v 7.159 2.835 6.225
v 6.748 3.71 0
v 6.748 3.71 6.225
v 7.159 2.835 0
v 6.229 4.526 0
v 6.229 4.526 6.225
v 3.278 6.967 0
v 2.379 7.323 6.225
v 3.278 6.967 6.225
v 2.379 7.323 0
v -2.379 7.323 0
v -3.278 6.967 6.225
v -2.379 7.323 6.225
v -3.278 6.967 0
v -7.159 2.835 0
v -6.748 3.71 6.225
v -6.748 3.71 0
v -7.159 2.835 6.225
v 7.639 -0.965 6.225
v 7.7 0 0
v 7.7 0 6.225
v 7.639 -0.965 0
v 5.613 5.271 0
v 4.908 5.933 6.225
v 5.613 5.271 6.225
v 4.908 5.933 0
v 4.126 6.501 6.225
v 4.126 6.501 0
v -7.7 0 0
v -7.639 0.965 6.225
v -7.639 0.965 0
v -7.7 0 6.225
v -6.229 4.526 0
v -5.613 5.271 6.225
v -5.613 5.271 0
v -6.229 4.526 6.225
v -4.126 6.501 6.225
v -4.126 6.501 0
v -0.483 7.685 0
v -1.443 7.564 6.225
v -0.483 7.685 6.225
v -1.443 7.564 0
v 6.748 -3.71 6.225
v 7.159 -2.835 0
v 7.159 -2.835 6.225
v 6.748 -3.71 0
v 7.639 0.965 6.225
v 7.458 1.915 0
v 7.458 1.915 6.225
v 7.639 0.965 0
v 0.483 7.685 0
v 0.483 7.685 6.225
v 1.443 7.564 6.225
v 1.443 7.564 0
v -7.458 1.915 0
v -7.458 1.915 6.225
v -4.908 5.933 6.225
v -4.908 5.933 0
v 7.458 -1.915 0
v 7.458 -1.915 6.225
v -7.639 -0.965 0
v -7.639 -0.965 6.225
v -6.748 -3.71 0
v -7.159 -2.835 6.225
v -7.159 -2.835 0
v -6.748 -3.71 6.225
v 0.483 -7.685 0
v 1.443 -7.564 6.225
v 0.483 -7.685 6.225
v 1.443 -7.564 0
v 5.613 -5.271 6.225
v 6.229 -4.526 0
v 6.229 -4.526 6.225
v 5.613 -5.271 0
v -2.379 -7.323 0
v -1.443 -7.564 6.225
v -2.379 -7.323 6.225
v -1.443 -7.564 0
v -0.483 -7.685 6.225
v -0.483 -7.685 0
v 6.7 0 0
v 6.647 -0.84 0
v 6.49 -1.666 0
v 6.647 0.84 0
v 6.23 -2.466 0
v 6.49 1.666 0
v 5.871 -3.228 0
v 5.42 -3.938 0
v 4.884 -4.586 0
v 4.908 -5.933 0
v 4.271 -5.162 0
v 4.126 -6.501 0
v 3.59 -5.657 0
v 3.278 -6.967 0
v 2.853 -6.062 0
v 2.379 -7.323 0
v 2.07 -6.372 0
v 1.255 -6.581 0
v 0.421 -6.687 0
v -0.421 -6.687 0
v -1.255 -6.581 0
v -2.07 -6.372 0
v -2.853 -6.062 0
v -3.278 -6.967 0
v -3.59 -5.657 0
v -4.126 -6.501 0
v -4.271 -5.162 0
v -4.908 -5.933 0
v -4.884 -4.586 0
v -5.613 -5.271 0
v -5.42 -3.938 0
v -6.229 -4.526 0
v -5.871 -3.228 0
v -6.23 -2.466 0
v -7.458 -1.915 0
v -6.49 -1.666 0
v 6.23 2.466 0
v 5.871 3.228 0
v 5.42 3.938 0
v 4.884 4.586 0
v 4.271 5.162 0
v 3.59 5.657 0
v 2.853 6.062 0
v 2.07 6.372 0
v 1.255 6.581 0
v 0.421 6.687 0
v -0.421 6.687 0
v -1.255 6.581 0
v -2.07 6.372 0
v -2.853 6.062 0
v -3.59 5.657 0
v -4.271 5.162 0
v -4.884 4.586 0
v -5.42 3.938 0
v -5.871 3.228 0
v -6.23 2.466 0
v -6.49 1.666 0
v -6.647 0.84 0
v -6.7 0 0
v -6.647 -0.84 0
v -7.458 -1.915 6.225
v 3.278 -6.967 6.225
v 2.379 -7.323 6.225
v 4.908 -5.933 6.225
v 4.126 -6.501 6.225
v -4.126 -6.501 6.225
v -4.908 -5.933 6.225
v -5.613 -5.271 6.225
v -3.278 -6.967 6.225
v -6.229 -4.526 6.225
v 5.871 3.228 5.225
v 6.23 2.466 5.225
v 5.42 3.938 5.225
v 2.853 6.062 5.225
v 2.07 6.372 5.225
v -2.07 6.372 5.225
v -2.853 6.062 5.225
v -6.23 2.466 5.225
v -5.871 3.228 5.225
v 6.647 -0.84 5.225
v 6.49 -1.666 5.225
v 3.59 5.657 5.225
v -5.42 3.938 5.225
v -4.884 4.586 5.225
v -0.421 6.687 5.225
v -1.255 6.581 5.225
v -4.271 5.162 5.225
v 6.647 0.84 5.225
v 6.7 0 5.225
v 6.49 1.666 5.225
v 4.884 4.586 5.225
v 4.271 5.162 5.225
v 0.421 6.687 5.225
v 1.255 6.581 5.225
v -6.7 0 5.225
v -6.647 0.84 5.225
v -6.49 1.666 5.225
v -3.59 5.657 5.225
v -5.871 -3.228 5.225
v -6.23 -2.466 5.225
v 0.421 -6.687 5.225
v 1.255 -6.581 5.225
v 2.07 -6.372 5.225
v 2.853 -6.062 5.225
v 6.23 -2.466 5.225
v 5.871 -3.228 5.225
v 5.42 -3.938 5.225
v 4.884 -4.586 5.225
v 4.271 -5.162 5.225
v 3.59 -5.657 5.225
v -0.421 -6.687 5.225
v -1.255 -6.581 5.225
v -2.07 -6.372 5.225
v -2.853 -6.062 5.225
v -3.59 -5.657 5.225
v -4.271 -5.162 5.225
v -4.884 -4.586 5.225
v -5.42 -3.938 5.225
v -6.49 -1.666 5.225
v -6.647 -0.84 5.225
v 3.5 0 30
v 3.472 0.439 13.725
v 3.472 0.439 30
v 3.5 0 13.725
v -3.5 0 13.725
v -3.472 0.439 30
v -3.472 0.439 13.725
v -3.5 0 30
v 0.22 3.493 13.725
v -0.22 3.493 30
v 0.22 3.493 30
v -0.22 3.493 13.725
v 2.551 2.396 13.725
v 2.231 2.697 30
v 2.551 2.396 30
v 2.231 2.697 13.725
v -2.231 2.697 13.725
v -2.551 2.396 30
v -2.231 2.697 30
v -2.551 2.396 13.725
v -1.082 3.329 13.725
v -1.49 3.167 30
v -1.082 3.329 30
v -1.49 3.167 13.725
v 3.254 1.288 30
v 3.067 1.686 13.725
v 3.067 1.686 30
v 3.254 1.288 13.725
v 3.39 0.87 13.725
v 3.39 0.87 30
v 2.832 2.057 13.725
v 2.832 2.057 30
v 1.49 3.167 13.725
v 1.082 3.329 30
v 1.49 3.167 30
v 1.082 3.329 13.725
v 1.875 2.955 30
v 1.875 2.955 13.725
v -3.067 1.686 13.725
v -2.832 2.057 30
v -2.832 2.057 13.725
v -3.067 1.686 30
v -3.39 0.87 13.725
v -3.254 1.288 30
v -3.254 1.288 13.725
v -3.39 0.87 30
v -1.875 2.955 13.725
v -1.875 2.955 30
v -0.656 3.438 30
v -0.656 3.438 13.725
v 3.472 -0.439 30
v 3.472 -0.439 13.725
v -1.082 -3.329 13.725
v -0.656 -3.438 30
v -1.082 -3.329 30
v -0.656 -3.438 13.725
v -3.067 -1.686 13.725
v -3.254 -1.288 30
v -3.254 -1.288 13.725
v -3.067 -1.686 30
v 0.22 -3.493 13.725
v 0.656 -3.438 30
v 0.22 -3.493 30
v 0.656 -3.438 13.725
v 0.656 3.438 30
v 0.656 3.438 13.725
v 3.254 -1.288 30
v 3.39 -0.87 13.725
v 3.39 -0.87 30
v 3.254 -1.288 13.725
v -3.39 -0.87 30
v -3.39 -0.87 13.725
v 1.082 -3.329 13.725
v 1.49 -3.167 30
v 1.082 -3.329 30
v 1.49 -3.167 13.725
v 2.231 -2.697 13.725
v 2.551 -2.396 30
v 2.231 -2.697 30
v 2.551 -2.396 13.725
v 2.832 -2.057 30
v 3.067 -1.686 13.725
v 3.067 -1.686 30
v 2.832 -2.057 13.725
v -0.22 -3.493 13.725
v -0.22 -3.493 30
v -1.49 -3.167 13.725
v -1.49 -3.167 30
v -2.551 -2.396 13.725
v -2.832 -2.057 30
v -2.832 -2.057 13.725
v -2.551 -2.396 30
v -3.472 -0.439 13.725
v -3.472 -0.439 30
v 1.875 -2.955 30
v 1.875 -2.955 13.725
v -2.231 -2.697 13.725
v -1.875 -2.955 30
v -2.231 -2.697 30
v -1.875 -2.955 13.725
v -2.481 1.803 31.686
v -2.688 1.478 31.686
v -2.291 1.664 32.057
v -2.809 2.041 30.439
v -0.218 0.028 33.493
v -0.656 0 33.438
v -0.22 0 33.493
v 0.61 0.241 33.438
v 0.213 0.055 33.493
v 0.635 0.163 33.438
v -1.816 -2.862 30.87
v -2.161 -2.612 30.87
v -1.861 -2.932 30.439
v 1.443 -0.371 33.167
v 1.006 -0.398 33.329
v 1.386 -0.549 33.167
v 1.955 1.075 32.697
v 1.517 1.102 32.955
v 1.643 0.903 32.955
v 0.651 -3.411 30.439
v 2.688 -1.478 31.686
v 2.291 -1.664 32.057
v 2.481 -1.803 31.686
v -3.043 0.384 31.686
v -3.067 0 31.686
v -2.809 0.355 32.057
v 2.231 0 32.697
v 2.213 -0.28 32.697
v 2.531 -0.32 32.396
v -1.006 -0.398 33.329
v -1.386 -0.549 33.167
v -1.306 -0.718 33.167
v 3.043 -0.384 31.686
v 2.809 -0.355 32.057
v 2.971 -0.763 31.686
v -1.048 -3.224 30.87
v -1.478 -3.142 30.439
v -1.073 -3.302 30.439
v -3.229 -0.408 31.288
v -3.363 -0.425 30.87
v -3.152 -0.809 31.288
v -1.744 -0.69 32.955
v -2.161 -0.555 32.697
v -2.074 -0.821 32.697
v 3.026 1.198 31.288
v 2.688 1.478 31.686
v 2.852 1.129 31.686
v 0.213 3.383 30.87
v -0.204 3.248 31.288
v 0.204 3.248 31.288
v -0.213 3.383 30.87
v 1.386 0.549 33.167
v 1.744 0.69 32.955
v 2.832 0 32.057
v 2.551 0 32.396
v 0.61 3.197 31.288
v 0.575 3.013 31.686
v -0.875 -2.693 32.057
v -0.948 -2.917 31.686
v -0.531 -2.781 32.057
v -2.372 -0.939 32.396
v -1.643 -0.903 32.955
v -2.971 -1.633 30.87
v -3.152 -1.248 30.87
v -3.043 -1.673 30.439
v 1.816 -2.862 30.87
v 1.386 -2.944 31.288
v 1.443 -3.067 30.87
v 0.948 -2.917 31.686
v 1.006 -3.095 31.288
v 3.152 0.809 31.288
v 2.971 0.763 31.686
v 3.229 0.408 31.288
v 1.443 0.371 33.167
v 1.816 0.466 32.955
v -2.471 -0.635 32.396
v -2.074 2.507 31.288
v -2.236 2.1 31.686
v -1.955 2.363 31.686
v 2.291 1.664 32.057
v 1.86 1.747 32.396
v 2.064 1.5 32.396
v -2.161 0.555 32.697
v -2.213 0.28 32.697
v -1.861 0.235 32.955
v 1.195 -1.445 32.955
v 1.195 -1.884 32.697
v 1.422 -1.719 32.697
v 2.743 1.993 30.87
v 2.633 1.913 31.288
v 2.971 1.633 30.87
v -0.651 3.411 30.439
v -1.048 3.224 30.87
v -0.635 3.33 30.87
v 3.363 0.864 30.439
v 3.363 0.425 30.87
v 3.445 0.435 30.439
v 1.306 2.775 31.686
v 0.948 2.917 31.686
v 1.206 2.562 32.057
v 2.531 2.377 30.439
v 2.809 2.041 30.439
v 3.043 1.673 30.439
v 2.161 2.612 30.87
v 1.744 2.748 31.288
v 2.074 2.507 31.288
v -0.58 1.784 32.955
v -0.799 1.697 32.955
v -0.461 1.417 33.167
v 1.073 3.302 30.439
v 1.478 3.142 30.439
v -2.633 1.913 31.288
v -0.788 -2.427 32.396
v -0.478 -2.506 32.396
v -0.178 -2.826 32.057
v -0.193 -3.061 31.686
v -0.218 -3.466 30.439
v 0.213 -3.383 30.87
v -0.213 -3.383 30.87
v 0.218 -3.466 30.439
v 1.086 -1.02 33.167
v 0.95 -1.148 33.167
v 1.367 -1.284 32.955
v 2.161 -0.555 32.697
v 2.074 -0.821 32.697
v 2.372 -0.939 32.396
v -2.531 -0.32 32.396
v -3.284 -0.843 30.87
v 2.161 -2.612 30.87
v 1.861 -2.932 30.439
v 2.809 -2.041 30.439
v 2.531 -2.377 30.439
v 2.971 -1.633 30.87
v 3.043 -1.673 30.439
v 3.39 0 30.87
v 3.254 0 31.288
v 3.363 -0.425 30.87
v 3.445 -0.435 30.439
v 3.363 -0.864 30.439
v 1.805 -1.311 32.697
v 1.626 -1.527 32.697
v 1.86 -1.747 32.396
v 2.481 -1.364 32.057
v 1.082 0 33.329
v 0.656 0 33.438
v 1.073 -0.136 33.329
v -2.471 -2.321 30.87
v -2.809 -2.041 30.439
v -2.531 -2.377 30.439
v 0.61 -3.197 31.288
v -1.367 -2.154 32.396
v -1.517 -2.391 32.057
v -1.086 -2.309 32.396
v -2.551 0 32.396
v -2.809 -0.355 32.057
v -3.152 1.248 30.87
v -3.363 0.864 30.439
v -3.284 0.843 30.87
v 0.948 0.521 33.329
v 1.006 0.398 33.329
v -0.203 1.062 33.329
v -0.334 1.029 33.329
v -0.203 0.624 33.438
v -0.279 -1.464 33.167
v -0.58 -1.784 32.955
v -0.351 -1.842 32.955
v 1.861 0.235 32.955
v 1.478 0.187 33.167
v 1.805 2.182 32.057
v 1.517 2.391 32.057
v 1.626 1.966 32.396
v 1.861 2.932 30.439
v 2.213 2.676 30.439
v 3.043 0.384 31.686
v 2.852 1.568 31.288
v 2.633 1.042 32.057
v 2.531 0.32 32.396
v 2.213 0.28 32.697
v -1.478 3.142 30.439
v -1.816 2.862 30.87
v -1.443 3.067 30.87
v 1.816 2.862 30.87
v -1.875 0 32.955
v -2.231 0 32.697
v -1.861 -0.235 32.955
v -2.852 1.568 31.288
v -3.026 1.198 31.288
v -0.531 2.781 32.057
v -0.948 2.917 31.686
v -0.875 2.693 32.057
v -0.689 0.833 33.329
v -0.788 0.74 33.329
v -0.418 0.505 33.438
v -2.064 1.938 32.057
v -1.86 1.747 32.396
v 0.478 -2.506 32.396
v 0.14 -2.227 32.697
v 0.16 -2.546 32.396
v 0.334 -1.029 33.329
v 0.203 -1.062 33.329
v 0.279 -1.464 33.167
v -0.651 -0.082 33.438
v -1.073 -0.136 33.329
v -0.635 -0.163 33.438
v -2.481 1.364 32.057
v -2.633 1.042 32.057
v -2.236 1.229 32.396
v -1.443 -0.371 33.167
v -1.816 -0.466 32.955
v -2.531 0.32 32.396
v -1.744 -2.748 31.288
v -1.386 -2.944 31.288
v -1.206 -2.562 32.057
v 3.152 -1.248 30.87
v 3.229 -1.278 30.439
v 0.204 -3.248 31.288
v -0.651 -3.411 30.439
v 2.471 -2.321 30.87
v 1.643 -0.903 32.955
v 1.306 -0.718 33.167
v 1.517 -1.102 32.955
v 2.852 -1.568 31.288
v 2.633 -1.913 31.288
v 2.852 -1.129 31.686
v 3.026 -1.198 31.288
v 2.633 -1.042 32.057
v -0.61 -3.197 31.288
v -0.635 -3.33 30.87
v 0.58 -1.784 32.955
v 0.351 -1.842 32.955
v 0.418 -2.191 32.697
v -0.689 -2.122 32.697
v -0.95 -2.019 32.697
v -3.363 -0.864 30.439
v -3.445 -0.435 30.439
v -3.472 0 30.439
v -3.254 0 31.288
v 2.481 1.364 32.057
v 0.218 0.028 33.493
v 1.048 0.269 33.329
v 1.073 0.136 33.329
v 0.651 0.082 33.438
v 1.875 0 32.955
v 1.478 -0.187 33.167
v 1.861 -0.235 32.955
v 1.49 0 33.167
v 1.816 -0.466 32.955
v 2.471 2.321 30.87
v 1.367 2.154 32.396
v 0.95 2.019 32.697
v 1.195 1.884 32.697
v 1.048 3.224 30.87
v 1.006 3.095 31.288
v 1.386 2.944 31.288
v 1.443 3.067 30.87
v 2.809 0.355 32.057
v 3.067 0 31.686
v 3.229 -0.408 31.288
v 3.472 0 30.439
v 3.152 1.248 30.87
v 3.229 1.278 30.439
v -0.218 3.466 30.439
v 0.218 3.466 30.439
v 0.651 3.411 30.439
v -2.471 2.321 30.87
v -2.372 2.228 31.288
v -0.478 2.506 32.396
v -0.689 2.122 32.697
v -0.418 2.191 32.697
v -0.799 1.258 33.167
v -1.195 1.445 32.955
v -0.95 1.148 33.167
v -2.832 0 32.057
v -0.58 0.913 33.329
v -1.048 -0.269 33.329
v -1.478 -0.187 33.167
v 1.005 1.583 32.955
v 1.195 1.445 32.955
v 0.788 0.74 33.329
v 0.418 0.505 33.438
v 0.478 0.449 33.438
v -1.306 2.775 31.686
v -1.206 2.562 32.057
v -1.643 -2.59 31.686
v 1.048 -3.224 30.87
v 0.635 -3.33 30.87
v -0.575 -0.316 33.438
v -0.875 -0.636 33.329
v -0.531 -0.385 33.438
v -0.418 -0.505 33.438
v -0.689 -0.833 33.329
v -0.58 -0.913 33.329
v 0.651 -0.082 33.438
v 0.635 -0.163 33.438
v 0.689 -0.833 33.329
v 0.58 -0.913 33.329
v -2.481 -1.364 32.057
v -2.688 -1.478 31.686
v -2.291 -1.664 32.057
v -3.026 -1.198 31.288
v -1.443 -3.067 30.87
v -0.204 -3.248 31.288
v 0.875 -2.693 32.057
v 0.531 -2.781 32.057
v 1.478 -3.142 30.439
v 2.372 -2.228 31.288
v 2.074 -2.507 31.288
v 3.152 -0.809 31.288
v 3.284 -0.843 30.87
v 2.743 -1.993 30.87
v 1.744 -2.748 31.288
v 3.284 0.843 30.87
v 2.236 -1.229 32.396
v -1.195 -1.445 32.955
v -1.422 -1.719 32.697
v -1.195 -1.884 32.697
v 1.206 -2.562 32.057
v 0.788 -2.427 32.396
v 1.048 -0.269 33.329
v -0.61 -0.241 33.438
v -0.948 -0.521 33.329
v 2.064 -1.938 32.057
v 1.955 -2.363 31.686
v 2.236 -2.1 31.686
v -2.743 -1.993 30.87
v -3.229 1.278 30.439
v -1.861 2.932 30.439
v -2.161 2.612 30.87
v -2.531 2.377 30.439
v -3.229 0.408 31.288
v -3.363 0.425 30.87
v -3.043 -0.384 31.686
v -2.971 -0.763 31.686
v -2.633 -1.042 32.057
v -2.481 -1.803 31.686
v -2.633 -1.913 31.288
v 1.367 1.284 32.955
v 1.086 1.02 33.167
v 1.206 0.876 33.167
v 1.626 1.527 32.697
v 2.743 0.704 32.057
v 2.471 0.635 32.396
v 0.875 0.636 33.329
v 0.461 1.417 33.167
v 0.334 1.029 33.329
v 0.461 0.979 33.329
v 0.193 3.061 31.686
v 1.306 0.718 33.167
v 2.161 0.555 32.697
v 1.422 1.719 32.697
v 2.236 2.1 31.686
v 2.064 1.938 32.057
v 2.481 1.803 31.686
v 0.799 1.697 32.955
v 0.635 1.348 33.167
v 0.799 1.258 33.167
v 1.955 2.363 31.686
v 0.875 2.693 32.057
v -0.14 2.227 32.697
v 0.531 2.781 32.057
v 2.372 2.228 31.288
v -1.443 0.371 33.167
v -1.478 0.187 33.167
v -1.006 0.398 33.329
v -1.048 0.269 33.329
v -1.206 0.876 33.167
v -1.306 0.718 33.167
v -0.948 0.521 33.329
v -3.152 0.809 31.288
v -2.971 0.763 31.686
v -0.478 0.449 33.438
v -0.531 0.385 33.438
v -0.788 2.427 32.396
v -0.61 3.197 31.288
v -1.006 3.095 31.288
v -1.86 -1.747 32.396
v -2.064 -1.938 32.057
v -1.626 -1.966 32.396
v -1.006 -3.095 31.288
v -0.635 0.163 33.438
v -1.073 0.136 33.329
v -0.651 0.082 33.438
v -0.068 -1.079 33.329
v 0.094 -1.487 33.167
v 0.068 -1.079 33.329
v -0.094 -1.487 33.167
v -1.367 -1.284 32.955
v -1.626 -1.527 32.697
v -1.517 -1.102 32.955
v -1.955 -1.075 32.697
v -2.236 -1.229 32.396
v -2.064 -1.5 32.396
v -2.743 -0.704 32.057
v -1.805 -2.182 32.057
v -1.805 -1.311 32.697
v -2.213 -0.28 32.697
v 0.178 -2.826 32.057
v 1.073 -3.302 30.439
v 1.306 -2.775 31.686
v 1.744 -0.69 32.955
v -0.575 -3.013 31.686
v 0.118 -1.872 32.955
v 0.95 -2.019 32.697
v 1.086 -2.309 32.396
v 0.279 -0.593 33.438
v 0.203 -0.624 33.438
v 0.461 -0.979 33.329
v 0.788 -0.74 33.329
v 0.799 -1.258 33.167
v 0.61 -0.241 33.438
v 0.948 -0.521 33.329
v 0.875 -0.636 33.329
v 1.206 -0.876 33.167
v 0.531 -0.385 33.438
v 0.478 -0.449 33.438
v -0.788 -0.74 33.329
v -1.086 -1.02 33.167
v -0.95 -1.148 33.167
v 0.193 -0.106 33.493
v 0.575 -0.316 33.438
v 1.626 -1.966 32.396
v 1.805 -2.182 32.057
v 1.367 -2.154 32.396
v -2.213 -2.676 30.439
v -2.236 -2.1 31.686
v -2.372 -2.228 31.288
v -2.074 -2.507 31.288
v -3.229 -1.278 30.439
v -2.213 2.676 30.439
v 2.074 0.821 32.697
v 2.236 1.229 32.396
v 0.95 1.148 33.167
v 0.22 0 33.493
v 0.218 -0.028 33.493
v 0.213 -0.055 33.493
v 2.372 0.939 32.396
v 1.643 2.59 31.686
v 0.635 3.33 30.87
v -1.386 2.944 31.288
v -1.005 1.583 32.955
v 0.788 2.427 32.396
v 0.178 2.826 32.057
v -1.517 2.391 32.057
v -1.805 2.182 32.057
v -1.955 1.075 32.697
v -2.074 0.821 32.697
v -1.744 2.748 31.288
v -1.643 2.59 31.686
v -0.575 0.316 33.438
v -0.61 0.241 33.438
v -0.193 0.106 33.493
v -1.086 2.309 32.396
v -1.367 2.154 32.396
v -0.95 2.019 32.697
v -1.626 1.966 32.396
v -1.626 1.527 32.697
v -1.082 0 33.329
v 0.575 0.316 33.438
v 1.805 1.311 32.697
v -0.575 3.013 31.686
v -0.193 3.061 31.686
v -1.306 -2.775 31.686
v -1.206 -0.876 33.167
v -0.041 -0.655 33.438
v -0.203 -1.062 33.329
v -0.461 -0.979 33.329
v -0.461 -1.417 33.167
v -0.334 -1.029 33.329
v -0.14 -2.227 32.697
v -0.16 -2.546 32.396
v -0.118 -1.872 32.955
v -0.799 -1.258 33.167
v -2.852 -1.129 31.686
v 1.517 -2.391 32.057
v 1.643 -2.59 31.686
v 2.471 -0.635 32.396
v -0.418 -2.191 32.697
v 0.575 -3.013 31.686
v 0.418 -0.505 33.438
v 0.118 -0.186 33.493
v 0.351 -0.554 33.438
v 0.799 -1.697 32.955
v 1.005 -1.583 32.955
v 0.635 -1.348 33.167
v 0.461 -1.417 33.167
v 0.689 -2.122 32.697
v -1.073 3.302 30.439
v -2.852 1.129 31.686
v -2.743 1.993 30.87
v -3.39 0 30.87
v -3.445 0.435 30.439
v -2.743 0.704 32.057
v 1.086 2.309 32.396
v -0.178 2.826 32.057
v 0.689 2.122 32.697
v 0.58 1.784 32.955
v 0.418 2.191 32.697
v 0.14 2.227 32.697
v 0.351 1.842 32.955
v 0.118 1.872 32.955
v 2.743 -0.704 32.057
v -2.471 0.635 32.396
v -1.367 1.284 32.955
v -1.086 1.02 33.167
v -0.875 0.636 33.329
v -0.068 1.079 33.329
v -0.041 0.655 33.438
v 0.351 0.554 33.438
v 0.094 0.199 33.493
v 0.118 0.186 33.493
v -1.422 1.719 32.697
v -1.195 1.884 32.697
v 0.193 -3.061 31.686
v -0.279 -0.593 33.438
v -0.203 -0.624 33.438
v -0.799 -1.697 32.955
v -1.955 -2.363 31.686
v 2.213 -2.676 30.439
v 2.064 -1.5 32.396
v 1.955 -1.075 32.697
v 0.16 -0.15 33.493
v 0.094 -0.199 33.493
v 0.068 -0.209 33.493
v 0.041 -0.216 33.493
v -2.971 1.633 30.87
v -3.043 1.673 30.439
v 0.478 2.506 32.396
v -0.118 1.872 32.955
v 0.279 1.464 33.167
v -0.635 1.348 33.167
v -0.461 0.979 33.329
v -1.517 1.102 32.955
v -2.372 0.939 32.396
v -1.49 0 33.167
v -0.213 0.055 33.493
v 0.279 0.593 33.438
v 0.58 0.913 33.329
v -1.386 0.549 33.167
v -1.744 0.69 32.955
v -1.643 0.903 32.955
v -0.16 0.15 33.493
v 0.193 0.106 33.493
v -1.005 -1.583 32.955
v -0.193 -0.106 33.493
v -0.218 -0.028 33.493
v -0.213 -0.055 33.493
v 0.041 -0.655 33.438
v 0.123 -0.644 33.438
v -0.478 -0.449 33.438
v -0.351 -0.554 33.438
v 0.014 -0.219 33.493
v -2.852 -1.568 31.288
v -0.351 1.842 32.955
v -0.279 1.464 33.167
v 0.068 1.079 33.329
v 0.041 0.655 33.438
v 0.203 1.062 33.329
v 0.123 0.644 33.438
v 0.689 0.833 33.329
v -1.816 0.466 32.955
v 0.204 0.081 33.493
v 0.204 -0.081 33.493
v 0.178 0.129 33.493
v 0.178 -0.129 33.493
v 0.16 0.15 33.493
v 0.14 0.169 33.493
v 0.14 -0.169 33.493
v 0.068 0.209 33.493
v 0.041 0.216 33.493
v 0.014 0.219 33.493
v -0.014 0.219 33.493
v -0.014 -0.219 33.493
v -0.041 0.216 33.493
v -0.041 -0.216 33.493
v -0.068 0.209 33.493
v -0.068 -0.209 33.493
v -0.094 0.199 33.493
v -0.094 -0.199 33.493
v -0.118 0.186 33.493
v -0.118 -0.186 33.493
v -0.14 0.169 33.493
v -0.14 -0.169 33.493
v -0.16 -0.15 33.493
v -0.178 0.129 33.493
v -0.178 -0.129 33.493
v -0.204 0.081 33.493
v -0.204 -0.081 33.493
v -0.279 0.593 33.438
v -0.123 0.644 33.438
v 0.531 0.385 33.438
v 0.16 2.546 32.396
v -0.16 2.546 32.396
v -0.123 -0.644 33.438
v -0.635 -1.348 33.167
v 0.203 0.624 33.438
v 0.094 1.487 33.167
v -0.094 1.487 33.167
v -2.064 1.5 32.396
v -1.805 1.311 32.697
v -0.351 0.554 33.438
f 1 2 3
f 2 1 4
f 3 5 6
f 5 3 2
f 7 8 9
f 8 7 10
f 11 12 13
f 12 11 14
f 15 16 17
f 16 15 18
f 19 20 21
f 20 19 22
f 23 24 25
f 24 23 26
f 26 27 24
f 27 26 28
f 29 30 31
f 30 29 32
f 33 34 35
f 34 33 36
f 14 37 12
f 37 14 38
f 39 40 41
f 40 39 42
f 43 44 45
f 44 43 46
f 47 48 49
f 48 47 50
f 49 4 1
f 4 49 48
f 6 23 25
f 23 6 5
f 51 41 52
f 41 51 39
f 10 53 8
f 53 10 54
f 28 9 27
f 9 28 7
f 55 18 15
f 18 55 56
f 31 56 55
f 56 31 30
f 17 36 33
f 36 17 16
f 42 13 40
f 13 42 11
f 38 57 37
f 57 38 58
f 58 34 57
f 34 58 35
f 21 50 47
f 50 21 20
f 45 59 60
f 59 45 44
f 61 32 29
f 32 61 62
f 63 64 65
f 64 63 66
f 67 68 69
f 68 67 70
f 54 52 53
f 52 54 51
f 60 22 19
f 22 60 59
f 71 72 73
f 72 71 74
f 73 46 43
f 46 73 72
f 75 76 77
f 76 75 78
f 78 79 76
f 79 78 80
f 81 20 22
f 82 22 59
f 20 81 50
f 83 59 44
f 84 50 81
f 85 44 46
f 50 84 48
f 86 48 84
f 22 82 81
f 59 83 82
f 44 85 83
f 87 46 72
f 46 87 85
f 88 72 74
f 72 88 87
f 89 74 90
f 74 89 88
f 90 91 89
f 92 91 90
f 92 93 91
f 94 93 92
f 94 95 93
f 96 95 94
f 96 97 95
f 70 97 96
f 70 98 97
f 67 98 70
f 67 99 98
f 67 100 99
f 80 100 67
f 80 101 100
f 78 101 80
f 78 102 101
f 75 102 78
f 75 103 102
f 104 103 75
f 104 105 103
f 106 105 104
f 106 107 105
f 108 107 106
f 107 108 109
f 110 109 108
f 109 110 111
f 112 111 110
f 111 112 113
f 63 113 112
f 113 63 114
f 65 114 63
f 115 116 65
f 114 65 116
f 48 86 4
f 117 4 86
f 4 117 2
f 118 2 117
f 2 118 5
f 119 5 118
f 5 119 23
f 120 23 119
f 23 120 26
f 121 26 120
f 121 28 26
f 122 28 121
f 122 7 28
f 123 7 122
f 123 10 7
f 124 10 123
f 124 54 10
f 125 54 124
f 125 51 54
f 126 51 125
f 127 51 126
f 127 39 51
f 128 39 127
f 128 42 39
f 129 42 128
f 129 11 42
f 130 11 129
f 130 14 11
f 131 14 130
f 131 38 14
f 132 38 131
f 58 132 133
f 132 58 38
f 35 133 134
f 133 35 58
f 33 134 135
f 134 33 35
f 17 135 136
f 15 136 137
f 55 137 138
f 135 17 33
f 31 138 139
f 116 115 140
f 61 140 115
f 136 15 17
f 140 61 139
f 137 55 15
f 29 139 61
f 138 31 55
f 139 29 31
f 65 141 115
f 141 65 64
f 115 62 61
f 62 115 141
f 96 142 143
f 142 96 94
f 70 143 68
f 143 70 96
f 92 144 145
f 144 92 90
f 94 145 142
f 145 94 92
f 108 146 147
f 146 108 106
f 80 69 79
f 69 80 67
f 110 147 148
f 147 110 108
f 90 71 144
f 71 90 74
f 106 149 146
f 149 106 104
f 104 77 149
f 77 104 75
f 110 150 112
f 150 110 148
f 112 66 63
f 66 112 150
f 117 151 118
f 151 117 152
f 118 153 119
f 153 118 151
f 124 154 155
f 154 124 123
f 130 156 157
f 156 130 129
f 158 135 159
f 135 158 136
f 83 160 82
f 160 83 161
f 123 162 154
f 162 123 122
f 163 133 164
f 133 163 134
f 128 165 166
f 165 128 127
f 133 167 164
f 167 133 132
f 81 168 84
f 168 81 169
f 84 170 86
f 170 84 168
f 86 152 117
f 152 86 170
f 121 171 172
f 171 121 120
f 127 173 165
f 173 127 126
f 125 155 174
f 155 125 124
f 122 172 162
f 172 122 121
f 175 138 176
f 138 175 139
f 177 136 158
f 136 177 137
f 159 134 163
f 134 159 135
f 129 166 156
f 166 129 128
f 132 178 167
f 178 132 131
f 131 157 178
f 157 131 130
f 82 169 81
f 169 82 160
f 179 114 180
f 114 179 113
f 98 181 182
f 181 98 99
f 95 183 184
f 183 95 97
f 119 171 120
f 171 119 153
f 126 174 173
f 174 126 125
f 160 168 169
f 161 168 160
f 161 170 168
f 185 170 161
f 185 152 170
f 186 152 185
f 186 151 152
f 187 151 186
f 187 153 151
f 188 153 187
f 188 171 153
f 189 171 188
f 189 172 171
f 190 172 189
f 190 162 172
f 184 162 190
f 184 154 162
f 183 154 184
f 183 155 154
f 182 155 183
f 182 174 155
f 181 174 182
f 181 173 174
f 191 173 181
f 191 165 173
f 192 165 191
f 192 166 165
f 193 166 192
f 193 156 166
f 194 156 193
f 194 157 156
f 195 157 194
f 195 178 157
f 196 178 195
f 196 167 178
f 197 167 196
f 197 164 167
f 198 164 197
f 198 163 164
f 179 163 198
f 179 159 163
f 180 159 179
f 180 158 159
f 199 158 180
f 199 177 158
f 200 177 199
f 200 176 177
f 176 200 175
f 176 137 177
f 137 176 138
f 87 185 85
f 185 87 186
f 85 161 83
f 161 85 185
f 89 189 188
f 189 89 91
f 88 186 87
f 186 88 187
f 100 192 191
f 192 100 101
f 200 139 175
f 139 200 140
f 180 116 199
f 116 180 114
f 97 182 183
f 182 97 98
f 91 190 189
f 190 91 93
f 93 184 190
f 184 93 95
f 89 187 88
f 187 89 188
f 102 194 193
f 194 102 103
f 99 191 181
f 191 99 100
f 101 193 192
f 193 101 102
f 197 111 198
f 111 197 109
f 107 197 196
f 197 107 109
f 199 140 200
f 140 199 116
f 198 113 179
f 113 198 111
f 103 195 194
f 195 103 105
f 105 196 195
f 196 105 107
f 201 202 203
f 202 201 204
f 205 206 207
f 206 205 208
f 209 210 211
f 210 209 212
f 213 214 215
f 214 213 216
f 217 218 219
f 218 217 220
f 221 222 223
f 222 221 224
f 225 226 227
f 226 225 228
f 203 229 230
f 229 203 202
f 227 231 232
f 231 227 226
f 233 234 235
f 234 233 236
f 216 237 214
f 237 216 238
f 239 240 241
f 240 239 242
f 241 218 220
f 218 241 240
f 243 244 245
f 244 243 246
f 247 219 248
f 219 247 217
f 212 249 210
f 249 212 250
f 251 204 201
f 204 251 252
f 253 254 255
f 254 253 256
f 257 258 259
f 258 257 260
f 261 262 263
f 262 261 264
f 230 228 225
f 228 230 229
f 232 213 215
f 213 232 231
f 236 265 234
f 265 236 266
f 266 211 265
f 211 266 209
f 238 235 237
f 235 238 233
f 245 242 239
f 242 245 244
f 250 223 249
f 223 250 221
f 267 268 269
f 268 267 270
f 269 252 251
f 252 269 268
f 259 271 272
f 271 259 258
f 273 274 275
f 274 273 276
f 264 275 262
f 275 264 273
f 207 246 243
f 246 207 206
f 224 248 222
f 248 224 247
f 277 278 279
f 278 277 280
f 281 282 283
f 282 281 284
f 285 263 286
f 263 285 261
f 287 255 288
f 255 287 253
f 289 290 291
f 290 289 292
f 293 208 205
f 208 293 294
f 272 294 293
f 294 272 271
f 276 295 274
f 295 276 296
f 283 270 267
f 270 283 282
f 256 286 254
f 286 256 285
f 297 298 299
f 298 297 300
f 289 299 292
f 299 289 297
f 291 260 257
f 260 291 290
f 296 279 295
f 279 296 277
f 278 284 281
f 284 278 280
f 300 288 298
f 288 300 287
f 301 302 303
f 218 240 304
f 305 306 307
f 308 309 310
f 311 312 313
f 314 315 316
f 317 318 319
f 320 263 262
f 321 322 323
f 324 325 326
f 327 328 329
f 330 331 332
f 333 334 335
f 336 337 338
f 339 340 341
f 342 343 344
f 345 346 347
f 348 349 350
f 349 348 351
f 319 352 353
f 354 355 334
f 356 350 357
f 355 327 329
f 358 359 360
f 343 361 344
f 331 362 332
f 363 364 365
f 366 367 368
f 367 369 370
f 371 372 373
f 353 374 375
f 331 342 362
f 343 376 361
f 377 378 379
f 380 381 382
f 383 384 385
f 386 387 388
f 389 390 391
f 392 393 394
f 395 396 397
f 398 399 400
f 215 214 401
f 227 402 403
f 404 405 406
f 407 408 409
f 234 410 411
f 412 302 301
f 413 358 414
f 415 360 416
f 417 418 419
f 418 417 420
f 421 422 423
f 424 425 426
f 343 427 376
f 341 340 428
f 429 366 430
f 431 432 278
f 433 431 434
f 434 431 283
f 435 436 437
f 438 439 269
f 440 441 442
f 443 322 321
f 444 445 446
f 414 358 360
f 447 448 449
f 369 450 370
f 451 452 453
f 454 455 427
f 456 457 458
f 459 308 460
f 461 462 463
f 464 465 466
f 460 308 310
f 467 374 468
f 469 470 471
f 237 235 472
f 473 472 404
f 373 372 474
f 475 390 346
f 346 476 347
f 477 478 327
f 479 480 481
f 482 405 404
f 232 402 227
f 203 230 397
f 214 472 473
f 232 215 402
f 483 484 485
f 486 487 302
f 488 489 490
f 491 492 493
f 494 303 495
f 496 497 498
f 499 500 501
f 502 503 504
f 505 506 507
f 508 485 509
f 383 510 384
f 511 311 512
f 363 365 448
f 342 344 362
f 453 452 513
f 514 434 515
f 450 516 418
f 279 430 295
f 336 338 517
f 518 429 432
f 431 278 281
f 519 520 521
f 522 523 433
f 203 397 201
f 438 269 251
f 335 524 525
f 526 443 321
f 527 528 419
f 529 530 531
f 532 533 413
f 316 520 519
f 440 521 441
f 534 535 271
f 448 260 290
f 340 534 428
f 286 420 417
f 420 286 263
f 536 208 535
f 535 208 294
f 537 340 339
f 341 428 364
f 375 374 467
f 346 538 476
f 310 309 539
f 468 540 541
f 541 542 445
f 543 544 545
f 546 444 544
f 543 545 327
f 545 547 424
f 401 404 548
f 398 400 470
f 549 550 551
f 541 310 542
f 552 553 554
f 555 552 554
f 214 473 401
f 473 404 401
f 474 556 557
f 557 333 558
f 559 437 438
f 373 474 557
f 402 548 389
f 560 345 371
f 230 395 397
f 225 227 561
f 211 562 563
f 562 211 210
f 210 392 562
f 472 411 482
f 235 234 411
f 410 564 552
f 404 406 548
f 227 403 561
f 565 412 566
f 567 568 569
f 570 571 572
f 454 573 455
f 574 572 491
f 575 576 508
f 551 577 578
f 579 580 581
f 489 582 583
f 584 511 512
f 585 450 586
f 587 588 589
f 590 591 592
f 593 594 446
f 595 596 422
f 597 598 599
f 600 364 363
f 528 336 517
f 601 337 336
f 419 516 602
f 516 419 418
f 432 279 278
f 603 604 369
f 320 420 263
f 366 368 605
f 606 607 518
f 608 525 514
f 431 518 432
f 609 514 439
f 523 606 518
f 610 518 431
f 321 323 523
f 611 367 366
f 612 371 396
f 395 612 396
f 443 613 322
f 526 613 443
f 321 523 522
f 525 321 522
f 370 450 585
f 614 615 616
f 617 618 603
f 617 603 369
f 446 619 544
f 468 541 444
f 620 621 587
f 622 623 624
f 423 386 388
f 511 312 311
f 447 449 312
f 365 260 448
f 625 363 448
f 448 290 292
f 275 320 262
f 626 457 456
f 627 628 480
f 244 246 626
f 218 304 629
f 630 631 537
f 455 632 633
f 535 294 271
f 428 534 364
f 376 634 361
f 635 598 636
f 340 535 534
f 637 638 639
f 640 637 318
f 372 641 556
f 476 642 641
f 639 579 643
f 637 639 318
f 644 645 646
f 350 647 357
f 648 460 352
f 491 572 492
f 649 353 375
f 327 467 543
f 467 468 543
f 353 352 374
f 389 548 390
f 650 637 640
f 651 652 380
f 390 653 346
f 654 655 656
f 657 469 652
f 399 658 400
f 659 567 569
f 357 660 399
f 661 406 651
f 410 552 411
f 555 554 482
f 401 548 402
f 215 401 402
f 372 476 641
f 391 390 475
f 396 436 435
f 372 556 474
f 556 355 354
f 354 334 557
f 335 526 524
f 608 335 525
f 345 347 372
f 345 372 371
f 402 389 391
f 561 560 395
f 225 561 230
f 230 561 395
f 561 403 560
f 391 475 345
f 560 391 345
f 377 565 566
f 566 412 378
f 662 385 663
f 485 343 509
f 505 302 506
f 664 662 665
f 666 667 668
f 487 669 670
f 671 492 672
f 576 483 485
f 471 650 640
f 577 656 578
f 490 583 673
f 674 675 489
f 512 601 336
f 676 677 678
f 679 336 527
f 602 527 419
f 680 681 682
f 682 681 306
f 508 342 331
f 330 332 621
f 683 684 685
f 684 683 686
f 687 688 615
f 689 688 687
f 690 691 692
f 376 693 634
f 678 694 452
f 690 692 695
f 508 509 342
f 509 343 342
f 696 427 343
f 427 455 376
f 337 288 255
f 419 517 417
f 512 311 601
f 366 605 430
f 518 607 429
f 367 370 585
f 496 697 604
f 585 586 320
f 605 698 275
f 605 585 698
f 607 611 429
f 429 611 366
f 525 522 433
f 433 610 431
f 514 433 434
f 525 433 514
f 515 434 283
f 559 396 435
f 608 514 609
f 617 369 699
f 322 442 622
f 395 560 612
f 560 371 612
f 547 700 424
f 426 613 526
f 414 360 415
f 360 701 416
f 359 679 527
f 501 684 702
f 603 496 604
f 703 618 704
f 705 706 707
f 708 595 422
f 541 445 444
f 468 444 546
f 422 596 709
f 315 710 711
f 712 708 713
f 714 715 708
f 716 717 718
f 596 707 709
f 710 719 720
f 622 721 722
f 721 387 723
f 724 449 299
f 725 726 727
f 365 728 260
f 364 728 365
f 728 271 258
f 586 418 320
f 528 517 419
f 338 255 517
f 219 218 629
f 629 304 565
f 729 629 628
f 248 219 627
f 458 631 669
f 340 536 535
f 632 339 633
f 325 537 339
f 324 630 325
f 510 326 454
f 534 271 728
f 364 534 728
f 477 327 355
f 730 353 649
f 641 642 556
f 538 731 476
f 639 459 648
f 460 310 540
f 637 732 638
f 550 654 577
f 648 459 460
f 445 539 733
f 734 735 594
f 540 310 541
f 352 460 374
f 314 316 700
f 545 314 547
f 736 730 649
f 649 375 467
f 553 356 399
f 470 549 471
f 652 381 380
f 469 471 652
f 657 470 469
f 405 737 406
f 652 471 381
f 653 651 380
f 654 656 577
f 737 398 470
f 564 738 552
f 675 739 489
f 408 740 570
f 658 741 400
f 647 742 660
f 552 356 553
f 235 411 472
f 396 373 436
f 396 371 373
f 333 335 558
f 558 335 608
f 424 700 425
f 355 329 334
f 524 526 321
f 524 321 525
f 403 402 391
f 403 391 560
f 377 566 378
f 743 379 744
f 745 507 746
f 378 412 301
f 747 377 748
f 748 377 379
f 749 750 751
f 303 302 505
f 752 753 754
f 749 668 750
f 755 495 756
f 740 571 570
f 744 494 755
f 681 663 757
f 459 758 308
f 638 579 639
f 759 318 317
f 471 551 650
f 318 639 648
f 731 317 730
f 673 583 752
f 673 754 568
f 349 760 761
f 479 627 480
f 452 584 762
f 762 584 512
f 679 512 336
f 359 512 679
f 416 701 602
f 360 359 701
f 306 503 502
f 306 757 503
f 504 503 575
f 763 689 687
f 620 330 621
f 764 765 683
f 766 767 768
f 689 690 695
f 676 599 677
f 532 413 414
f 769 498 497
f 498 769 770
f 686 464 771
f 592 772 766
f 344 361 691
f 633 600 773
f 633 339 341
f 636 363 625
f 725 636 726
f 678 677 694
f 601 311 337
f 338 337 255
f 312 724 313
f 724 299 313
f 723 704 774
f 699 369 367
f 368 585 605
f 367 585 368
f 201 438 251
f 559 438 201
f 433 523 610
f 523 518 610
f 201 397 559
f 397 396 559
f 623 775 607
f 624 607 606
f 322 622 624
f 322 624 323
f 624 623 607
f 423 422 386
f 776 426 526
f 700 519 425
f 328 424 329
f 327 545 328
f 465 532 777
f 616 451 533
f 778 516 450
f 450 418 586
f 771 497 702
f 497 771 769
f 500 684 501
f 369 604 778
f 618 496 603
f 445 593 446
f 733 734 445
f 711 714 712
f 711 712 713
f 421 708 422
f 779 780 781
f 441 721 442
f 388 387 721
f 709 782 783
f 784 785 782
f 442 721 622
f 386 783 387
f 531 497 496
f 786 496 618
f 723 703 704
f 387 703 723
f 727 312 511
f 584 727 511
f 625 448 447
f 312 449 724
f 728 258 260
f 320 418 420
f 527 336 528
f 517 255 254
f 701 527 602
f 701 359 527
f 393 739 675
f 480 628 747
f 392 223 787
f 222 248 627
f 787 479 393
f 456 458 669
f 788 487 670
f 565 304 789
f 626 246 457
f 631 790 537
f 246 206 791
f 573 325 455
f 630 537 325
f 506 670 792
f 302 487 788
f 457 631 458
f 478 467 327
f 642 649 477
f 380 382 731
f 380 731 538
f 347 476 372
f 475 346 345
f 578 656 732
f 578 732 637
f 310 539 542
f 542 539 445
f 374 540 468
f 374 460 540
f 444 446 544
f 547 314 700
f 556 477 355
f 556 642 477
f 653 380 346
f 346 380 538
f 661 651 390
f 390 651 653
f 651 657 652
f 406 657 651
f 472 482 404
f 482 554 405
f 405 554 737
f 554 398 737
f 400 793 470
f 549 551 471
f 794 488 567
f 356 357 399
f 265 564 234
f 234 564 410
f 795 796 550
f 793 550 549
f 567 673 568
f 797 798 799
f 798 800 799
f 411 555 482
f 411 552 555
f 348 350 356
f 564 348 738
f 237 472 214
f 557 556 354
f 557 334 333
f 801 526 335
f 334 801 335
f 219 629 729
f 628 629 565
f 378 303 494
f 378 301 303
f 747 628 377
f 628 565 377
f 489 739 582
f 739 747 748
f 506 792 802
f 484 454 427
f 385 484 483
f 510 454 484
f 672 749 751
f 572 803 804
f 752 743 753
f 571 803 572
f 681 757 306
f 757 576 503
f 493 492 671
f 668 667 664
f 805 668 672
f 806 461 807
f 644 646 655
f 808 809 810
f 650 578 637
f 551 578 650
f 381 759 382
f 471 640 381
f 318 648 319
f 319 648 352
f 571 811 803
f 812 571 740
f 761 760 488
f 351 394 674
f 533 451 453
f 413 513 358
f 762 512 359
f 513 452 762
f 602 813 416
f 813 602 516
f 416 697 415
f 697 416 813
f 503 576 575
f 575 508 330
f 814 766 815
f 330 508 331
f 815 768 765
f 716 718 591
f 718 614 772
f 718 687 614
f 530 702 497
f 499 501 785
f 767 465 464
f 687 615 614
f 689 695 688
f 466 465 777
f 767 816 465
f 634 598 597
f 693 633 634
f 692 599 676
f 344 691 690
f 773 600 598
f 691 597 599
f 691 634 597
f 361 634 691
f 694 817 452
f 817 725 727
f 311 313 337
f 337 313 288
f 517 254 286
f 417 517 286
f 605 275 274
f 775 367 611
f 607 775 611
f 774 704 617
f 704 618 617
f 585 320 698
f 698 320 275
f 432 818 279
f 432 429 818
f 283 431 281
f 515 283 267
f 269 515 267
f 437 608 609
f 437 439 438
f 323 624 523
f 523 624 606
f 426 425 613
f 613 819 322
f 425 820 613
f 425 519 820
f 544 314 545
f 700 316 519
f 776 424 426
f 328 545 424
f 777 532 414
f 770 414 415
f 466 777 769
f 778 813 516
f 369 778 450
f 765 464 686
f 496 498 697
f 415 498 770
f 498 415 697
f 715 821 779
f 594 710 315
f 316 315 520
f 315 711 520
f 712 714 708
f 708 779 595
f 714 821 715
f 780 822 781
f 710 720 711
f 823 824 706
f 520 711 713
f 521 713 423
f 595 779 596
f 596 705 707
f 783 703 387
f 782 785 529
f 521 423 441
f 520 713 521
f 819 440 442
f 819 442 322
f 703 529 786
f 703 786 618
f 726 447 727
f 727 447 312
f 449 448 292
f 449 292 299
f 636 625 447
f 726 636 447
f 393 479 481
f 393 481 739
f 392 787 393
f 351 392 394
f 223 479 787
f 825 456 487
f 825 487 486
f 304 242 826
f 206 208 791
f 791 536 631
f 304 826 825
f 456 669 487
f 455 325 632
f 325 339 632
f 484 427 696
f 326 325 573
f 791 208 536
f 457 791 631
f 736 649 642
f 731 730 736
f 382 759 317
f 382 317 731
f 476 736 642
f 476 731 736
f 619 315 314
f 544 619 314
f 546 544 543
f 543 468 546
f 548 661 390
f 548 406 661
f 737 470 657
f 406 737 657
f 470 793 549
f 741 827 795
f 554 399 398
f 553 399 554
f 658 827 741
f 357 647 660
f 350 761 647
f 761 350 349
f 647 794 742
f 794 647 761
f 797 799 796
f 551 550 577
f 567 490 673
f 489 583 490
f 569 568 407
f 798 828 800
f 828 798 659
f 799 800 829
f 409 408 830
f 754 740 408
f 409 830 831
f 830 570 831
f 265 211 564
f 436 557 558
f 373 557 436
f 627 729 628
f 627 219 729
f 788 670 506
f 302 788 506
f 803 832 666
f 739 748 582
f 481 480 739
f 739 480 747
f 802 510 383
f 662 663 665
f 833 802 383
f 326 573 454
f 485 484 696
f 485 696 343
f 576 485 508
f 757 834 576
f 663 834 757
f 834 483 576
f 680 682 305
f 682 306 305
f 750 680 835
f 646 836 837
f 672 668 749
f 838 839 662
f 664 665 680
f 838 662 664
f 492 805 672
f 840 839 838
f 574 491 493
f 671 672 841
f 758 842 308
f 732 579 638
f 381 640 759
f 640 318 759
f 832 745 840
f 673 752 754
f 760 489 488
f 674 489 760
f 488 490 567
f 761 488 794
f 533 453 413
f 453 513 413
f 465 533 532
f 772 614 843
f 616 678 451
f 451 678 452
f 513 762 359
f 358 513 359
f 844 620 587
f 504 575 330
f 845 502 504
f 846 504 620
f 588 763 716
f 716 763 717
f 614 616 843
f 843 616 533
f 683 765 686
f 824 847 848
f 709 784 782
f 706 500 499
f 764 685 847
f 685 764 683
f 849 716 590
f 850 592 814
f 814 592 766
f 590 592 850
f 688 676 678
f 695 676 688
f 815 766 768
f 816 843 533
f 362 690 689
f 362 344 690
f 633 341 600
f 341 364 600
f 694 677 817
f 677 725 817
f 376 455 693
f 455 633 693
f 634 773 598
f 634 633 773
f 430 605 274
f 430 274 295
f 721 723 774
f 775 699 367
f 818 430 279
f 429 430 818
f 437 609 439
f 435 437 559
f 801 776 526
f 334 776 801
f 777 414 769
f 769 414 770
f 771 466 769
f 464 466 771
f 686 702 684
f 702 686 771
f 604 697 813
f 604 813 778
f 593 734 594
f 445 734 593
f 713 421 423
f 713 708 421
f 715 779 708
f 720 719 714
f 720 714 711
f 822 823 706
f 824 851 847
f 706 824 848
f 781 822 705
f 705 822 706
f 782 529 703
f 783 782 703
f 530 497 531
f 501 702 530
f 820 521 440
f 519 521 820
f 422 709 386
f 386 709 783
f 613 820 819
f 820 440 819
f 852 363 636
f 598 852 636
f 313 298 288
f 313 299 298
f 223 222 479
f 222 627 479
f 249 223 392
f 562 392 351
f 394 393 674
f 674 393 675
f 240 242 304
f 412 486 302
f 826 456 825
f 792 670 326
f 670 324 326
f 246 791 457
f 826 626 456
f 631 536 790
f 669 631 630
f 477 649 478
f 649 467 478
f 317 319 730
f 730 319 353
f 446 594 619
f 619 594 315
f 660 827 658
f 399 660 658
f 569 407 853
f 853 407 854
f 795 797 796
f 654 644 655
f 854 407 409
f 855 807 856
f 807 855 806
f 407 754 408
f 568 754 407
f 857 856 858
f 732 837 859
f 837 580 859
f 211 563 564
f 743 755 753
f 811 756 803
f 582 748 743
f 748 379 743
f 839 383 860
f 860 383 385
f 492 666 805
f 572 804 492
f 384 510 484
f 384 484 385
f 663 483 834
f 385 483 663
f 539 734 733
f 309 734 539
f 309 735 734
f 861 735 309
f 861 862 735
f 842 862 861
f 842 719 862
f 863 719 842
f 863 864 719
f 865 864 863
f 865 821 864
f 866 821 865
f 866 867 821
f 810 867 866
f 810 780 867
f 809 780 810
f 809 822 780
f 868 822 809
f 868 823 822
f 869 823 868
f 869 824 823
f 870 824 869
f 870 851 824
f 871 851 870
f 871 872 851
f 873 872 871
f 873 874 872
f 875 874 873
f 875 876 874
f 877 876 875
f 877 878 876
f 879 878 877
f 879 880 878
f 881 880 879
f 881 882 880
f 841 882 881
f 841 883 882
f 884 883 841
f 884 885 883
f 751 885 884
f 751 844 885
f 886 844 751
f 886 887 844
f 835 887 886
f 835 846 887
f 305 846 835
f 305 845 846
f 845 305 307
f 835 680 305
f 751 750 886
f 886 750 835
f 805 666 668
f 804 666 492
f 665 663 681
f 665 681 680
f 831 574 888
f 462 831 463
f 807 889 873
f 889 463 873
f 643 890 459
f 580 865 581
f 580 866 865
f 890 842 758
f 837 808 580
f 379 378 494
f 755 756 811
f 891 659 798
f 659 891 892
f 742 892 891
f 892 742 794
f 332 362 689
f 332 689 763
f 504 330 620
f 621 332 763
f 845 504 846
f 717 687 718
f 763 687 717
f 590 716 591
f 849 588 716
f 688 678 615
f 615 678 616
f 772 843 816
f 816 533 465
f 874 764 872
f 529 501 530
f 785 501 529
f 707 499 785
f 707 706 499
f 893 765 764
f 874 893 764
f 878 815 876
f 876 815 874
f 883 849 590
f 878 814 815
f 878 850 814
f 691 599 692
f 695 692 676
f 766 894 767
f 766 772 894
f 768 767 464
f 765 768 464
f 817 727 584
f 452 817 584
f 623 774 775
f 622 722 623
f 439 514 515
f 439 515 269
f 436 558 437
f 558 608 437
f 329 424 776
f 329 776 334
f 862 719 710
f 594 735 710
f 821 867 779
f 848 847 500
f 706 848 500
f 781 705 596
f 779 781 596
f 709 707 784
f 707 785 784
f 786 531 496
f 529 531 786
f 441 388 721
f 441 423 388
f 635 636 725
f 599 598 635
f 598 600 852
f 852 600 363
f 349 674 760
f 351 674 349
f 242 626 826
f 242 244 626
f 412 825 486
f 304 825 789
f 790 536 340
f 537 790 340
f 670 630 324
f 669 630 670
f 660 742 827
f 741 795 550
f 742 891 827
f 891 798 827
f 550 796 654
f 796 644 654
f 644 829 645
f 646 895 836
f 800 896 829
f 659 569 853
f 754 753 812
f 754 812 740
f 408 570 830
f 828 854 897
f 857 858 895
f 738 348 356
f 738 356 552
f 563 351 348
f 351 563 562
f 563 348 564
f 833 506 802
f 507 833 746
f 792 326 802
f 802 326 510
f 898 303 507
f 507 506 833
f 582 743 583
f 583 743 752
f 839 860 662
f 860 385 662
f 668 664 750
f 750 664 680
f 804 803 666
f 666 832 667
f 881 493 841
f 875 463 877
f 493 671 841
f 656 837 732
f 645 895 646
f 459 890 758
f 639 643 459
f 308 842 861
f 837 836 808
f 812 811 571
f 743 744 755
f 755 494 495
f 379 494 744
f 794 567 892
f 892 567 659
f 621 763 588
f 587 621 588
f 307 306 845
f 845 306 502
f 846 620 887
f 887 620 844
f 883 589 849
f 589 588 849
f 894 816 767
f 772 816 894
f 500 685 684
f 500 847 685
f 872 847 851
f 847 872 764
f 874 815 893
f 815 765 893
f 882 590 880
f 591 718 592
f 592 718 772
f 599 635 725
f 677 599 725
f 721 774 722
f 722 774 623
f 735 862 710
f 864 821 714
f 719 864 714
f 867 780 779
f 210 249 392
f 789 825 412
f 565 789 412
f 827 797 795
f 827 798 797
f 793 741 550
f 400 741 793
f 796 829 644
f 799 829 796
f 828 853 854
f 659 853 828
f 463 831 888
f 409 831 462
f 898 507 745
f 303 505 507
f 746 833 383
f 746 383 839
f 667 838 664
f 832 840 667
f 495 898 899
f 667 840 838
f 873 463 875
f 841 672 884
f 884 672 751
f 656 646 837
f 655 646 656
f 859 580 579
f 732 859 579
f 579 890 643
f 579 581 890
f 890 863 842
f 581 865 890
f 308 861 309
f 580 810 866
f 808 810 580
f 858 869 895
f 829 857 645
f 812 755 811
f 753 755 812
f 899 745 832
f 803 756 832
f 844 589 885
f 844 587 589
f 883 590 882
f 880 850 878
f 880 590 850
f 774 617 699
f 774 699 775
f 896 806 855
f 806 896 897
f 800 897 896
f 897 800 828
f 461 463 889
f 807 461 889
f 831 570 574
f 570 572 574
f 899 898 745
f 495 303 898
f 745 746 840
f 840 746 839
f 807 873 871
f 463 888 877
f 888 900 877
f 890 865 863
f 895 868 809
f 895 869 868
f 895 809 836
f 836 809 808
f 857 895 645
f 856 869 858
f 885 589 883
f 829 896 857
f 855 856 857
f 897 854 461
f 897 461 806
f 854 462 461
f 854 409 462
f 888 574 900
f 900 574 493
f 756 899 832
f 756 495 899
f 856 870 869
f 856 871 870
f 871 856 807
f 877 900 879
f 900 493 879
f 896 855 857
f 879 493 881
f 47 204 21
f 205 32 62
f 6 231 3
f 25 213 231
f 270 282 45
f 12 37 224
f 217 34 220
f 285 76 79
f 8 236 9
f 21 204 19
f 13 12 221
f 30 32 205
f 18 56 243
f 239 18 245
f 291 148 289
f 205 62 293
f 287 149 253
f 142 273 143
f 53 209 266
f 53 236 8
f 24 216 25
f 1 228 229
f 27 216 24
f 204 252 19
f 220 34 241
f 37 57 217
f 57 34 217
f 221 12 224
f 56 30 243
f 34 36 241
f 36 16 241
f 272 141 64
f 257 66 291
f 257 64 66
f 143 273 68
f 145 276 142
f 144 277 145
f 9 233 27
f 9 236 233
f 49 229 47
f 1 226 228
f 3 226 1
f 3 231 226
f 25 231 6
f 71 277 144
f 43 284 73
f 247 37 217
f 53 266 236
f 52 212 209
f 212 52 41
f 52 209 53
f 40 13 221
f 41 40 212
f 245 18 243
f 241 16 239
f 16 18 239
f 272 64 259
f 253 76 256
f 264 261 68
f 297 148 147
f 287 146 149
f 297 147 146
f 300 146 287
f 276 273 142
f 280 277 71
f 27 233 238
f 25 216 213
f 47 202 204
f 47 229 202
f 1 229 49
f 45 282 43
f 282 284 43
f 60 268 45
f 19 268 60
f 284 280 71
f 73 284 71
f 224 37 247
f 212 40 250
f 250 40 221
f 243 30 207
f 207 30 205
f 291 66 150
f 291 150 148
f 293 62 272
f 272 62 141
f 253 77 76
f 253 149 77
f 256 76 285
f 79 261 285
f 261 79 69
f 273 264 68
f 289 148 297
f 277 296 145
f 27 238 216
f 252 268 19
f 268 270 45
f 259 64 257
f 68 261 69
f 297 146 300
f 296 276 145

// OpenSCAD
// Resolution
$fn=50;

// Paramters of the stick
stick_diameter = 7; // Handle Diameter (nominal 7 mm)
height = 30; // Total Height (nominal 30 mm or 65 mm)
wall_thickness = 2; // Thickness of sides/top of magnet area (nominal 2 mm)
recess_depth = 1; // Recess depth of magnet in bottom (nominal 0-1 mm)
taper_height = 7.5; // How tall the taper is (nominal 7.5 mm)

// Magnet Holes (actual + fudge factor)
magnet_radius = 6.35 + 0.35;
magnet_depth = 3.175 + 0.05;

// Calculated parameters
stick_radius = stick_diameter/2.;
stick_height = height - magnet_depth - wall_thickness - recess_depth;

base_width = (magnet_radius*2) + wall_thickness;
base_radius = base_width/2.;

union(){

    // Make the base of the stand with holes for the magnet
    difference(){
        // Base
        cylinder(magnet_depth + wall_thickness + recess_depth,base_radius,base_radius);
        // Make hole for magnet
        cylinder(magnet_depth + wall_thickness, magnet_radius,magnet_radius);
    }
 
    // Make the stick and round topper
    union(){
        // Make the narrow stick
        translate([0,0,magnet_depth + wall_thickness + recess_depth]) cylinder(stick_height,stick_radius,stick_radius);
        // Add the Topper
        translate([0,0,magnet_depth + wall_thickness + recess_depth + stick_height]) sphere(stick_radius);
    }
    
    // Make the strain relief at the base
    translate([0,0,magnet_depth + wall_thickness + recess_depth]) cylinder(taper_height, base_radius, stick_radius);
}
